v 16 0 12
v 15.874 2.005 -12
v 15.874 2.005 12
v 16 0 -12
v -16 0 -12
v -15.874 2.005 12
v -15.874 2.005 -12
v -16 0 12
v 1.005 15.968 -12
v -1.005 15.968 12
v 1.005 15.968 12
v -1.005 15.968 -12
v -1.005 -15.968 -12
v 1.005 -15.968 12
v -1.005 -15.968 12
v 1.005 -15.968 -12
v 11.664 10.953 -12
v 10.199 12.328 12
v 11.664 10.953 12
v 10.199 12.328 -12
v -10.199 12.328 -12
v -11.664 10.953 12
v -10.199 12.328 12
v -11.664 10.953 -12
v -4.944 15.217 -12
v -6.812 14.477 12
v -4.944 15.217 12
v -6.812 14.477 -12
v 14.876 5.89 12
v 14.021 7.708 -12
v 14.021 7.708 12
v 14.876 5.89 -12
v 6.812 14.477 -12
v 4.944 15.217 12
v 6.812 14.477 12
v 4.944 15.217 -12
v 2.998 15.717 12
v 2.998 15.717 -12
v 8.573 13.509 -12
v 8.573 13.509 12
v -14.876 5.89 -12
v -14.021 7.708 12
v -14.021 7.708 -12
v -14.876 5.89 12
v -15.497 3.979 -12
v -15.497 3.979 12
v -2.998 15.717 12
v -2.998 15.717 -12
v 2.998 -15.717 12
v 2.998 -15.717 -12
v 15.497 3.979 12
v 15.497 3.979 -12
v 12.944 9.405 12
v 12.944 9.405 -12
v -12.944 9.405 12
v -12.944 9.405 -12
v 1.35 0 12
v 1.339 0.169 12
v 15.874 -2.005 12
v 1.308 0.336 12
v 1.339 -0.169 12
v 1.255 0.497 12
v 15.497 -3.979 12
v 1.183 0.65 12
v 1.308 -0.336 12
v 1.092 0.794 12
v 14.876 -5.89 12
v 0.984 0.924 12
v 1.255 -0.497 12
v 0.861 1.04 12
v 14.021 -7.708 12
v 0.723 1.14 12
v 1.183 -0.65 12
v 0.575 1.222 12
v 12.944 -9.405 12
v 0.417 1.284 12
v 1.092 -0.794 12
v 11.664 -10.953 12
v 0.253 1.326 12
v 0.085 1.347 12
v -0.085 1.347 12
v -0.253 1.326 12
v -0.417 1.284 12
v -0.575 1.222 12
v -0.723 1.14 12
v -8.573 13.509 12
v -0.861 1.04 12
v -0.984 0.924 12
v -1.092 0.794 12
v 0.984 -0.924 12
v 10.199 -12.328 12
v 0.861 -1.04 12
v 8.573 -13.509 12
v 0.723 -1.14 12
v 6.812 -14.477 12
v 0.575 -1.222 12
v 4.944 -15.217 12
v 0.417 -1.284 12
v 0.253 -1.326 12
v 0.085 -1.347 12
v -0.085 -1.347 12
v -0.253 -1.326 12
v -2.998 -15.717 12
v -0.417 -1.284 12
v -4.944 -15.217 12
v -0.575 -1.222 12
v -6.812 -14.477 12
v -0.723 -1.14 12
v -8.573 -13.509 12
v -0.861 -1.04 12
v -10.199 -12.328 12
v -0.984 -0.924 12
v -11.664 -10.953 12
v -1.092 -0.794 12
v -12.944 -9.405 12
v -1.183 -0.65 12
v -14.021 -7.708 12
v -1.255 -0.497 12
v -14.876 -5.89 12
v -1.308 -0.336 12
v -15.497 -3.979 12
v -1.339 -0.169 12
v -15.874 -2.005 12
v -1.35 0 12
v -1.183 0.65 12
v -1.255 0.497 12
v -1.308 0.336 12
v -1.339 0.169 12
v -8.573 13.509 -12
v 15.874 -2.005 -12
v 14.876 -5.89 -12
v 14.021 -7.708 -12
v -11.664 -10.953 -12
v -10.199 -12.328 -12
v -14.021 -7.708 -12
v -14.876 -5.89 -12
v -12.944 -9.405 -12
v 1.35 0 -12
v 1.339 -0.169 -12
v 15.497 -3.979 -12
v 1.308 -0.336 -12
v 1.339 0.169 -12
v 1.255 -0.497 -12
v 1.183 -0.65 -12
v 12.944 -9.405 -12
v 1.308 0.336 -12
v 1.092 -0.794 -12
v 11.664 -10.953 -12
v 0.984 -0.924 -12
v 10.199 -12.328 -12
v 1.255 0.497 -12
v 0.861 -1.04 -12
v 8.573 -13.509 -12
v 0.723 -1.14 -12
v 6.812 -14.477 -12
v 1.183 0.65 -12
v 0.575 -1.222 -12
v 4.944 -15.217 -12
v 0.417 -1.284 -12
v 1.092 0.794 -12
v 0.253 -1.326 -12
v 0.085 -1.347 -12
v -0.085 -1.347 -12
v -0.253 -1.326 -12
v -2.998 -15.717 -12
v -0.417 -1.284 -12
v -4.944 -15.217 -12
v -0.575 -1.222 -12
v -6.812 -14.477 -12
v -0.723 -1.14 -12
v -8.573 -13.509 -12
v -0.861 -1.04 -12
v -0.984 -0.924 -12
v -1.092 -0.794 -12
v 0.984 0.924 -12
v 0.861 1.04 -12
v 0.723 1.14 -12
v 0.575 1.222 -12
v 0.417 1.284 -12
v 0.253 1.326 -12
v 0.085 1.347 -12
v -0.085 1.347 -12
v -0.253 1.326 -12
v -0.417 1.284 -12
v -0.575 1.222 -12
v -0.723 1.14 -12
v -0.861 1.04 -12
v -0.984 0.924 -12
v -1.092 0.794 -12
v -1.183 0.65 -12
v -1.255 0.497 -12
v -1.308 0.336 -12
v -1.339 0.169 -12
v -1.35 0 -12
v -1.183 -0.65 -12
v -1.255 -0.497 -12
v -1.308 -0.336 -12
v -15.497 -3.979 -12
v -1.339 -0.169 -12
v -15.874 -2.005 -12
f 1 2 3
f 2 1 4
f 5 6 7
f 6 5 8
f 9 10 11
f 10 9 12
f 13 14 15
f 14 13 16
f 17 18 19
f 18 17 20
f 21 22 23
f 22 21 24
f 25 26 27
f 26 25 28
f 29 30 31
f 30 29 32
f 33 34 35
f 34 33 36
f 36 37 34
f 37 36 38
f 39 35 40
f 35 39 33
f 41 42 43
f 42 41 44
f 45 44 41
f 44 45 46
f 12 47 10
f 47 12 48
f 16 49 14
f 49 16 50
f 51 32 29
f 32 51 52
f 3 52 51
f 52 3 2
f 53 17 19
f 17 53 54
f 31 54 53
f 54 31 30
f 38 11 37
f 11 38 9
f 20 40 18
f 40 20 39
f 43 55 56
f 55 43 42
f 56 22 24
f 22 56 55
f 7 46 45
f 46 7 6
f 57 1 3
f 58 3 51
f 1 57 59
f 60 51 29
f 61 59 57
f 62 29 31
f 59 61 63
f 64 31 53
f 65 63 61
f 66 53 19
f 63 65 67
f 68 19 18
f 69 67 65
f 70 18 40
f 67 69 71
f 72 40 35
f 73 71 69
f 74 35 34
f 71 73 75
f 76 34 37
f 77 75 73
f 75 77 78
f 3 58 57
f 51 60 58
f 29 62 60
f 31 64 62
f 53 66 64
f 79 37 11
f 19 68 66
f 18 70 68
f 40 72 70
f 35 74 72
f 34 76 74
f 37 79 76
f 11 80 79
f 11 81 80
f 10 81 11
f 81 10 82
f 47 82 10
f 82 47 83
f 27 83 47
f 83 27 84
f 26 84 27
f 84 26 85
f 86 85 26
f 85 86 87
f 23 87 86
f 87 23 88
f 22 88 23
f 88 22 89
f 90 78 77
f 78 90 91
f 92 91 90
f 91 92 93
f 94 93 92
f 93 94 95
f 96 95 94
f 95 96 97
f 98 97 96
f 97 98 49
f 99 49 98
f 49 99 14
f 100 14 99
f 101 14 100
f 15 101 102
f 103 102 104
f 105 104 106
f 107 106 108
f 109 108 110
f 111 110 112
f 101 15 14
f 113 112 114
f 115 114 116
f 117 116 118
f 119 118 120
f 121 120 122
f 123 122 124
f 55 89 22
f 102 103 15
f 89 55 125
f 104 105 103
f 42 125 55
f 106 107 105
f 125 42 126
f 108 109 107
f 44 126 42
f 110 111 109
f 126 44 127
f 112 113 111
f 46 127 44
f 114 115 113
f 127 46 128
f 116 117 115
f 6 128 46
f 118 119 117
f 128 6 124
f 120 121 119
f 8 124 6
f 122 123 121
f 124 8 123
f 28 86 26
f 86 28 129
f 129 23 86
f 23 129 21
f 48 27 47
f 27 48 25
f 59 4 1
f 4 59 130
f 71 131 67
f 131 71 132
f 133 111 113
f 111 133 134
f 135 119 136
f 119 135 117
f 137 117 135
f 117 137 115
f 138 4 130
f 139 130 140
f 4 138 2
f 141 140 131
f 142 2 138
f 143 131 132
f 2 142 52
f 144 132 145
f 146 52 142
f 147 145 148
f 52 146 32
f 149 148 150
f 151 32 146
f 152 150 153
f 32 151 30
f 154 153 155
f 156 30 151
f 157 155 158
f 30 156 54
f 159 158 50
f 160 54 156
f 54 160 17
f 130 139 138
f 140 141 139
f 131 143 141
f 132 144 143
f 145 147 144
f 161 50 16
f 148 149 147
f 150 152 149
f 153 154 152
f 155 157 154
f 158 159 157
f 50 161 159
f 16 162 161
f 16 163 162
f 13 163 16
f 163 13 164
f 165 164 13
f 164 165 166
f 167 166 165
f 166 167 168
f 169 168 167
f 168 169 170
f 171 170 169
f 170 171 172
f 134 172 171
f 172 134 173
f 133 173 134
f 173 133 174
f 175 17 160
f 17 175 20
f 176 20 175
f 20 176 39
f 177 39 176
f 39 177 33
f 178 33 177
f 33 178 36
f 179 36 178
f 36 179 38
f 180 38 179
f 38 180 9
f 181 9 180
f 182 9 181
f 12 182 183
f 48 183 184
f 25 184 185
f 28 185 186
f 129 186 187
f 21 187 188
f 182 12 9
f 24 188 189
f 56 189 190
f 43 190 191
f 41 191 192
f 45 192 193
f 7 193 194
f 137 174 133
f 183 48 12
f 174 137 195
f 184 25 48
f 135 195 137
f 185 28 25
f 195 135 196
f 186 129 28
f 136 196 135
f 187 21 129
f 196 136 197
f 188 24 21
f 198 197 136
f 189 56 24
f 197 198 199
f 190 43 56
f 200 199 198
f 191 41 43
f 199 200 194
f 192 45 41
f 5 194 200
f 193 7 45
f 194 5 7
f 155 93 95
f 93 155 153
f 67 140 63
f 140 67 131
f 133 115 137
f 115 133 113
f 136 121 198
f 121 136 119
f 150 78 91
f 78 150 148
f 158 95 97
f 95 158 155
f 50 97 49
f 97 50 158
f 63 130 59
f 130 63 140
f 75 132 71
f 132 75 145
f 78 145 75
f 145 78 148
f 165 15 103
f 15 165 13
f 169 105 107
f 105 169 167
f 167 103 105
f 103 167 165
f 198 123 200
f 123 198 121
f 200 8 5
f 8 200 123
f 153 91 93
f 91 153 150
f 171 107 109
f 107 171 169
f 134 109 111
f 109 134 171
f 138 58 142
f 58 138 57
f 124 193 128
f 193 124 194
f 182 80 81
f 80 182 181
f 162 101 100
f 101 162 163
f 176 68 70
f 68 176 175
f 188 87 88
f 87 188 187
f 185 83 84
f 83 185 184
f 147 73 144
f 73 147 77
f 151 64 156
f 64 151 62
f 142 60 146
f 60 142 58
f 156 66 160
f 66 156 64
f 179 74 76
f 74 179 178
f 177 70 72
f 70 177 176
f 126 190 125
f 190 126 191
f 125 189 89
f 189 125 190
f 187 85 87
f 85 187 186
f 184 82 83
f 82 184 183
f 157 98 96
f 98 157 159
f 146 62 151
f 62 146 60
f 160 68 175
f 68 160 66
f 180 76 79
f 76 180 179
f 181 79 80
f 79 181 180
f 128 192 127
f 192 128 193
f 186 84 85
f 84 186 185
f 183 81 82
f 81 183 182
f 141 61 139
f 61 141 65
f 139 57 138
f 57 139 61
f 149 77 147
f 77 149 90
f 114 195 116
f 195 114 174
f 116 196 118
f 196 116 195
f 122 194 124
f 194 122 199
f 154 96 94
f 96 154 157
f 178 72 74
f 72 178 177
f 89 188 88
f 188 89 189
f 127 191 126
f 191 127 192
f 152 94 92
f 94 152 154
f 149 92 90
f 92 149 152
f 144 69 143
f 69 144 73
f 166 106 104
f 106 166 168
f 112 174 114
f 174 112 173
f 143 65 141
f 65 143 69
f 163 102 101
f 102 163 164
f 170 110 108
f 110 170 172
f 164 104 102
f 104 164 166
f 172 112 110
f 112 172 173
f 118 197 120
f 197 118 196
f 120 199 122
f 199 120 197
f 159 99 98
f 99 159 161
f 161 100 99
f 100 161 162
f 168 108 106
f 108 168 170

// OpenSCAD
$fn = 50;


difference() {
	union() {
		translate(v = [0, 0, -12.0000000000]) {
			cylinder(h = 24, r = 16.0000000000);
		}
	}
	union() {
		translate(v = [0, 0, -100.0000000000]) {
			cylinder(h = 200, r = 1.3500000000);
		}
	}
}
